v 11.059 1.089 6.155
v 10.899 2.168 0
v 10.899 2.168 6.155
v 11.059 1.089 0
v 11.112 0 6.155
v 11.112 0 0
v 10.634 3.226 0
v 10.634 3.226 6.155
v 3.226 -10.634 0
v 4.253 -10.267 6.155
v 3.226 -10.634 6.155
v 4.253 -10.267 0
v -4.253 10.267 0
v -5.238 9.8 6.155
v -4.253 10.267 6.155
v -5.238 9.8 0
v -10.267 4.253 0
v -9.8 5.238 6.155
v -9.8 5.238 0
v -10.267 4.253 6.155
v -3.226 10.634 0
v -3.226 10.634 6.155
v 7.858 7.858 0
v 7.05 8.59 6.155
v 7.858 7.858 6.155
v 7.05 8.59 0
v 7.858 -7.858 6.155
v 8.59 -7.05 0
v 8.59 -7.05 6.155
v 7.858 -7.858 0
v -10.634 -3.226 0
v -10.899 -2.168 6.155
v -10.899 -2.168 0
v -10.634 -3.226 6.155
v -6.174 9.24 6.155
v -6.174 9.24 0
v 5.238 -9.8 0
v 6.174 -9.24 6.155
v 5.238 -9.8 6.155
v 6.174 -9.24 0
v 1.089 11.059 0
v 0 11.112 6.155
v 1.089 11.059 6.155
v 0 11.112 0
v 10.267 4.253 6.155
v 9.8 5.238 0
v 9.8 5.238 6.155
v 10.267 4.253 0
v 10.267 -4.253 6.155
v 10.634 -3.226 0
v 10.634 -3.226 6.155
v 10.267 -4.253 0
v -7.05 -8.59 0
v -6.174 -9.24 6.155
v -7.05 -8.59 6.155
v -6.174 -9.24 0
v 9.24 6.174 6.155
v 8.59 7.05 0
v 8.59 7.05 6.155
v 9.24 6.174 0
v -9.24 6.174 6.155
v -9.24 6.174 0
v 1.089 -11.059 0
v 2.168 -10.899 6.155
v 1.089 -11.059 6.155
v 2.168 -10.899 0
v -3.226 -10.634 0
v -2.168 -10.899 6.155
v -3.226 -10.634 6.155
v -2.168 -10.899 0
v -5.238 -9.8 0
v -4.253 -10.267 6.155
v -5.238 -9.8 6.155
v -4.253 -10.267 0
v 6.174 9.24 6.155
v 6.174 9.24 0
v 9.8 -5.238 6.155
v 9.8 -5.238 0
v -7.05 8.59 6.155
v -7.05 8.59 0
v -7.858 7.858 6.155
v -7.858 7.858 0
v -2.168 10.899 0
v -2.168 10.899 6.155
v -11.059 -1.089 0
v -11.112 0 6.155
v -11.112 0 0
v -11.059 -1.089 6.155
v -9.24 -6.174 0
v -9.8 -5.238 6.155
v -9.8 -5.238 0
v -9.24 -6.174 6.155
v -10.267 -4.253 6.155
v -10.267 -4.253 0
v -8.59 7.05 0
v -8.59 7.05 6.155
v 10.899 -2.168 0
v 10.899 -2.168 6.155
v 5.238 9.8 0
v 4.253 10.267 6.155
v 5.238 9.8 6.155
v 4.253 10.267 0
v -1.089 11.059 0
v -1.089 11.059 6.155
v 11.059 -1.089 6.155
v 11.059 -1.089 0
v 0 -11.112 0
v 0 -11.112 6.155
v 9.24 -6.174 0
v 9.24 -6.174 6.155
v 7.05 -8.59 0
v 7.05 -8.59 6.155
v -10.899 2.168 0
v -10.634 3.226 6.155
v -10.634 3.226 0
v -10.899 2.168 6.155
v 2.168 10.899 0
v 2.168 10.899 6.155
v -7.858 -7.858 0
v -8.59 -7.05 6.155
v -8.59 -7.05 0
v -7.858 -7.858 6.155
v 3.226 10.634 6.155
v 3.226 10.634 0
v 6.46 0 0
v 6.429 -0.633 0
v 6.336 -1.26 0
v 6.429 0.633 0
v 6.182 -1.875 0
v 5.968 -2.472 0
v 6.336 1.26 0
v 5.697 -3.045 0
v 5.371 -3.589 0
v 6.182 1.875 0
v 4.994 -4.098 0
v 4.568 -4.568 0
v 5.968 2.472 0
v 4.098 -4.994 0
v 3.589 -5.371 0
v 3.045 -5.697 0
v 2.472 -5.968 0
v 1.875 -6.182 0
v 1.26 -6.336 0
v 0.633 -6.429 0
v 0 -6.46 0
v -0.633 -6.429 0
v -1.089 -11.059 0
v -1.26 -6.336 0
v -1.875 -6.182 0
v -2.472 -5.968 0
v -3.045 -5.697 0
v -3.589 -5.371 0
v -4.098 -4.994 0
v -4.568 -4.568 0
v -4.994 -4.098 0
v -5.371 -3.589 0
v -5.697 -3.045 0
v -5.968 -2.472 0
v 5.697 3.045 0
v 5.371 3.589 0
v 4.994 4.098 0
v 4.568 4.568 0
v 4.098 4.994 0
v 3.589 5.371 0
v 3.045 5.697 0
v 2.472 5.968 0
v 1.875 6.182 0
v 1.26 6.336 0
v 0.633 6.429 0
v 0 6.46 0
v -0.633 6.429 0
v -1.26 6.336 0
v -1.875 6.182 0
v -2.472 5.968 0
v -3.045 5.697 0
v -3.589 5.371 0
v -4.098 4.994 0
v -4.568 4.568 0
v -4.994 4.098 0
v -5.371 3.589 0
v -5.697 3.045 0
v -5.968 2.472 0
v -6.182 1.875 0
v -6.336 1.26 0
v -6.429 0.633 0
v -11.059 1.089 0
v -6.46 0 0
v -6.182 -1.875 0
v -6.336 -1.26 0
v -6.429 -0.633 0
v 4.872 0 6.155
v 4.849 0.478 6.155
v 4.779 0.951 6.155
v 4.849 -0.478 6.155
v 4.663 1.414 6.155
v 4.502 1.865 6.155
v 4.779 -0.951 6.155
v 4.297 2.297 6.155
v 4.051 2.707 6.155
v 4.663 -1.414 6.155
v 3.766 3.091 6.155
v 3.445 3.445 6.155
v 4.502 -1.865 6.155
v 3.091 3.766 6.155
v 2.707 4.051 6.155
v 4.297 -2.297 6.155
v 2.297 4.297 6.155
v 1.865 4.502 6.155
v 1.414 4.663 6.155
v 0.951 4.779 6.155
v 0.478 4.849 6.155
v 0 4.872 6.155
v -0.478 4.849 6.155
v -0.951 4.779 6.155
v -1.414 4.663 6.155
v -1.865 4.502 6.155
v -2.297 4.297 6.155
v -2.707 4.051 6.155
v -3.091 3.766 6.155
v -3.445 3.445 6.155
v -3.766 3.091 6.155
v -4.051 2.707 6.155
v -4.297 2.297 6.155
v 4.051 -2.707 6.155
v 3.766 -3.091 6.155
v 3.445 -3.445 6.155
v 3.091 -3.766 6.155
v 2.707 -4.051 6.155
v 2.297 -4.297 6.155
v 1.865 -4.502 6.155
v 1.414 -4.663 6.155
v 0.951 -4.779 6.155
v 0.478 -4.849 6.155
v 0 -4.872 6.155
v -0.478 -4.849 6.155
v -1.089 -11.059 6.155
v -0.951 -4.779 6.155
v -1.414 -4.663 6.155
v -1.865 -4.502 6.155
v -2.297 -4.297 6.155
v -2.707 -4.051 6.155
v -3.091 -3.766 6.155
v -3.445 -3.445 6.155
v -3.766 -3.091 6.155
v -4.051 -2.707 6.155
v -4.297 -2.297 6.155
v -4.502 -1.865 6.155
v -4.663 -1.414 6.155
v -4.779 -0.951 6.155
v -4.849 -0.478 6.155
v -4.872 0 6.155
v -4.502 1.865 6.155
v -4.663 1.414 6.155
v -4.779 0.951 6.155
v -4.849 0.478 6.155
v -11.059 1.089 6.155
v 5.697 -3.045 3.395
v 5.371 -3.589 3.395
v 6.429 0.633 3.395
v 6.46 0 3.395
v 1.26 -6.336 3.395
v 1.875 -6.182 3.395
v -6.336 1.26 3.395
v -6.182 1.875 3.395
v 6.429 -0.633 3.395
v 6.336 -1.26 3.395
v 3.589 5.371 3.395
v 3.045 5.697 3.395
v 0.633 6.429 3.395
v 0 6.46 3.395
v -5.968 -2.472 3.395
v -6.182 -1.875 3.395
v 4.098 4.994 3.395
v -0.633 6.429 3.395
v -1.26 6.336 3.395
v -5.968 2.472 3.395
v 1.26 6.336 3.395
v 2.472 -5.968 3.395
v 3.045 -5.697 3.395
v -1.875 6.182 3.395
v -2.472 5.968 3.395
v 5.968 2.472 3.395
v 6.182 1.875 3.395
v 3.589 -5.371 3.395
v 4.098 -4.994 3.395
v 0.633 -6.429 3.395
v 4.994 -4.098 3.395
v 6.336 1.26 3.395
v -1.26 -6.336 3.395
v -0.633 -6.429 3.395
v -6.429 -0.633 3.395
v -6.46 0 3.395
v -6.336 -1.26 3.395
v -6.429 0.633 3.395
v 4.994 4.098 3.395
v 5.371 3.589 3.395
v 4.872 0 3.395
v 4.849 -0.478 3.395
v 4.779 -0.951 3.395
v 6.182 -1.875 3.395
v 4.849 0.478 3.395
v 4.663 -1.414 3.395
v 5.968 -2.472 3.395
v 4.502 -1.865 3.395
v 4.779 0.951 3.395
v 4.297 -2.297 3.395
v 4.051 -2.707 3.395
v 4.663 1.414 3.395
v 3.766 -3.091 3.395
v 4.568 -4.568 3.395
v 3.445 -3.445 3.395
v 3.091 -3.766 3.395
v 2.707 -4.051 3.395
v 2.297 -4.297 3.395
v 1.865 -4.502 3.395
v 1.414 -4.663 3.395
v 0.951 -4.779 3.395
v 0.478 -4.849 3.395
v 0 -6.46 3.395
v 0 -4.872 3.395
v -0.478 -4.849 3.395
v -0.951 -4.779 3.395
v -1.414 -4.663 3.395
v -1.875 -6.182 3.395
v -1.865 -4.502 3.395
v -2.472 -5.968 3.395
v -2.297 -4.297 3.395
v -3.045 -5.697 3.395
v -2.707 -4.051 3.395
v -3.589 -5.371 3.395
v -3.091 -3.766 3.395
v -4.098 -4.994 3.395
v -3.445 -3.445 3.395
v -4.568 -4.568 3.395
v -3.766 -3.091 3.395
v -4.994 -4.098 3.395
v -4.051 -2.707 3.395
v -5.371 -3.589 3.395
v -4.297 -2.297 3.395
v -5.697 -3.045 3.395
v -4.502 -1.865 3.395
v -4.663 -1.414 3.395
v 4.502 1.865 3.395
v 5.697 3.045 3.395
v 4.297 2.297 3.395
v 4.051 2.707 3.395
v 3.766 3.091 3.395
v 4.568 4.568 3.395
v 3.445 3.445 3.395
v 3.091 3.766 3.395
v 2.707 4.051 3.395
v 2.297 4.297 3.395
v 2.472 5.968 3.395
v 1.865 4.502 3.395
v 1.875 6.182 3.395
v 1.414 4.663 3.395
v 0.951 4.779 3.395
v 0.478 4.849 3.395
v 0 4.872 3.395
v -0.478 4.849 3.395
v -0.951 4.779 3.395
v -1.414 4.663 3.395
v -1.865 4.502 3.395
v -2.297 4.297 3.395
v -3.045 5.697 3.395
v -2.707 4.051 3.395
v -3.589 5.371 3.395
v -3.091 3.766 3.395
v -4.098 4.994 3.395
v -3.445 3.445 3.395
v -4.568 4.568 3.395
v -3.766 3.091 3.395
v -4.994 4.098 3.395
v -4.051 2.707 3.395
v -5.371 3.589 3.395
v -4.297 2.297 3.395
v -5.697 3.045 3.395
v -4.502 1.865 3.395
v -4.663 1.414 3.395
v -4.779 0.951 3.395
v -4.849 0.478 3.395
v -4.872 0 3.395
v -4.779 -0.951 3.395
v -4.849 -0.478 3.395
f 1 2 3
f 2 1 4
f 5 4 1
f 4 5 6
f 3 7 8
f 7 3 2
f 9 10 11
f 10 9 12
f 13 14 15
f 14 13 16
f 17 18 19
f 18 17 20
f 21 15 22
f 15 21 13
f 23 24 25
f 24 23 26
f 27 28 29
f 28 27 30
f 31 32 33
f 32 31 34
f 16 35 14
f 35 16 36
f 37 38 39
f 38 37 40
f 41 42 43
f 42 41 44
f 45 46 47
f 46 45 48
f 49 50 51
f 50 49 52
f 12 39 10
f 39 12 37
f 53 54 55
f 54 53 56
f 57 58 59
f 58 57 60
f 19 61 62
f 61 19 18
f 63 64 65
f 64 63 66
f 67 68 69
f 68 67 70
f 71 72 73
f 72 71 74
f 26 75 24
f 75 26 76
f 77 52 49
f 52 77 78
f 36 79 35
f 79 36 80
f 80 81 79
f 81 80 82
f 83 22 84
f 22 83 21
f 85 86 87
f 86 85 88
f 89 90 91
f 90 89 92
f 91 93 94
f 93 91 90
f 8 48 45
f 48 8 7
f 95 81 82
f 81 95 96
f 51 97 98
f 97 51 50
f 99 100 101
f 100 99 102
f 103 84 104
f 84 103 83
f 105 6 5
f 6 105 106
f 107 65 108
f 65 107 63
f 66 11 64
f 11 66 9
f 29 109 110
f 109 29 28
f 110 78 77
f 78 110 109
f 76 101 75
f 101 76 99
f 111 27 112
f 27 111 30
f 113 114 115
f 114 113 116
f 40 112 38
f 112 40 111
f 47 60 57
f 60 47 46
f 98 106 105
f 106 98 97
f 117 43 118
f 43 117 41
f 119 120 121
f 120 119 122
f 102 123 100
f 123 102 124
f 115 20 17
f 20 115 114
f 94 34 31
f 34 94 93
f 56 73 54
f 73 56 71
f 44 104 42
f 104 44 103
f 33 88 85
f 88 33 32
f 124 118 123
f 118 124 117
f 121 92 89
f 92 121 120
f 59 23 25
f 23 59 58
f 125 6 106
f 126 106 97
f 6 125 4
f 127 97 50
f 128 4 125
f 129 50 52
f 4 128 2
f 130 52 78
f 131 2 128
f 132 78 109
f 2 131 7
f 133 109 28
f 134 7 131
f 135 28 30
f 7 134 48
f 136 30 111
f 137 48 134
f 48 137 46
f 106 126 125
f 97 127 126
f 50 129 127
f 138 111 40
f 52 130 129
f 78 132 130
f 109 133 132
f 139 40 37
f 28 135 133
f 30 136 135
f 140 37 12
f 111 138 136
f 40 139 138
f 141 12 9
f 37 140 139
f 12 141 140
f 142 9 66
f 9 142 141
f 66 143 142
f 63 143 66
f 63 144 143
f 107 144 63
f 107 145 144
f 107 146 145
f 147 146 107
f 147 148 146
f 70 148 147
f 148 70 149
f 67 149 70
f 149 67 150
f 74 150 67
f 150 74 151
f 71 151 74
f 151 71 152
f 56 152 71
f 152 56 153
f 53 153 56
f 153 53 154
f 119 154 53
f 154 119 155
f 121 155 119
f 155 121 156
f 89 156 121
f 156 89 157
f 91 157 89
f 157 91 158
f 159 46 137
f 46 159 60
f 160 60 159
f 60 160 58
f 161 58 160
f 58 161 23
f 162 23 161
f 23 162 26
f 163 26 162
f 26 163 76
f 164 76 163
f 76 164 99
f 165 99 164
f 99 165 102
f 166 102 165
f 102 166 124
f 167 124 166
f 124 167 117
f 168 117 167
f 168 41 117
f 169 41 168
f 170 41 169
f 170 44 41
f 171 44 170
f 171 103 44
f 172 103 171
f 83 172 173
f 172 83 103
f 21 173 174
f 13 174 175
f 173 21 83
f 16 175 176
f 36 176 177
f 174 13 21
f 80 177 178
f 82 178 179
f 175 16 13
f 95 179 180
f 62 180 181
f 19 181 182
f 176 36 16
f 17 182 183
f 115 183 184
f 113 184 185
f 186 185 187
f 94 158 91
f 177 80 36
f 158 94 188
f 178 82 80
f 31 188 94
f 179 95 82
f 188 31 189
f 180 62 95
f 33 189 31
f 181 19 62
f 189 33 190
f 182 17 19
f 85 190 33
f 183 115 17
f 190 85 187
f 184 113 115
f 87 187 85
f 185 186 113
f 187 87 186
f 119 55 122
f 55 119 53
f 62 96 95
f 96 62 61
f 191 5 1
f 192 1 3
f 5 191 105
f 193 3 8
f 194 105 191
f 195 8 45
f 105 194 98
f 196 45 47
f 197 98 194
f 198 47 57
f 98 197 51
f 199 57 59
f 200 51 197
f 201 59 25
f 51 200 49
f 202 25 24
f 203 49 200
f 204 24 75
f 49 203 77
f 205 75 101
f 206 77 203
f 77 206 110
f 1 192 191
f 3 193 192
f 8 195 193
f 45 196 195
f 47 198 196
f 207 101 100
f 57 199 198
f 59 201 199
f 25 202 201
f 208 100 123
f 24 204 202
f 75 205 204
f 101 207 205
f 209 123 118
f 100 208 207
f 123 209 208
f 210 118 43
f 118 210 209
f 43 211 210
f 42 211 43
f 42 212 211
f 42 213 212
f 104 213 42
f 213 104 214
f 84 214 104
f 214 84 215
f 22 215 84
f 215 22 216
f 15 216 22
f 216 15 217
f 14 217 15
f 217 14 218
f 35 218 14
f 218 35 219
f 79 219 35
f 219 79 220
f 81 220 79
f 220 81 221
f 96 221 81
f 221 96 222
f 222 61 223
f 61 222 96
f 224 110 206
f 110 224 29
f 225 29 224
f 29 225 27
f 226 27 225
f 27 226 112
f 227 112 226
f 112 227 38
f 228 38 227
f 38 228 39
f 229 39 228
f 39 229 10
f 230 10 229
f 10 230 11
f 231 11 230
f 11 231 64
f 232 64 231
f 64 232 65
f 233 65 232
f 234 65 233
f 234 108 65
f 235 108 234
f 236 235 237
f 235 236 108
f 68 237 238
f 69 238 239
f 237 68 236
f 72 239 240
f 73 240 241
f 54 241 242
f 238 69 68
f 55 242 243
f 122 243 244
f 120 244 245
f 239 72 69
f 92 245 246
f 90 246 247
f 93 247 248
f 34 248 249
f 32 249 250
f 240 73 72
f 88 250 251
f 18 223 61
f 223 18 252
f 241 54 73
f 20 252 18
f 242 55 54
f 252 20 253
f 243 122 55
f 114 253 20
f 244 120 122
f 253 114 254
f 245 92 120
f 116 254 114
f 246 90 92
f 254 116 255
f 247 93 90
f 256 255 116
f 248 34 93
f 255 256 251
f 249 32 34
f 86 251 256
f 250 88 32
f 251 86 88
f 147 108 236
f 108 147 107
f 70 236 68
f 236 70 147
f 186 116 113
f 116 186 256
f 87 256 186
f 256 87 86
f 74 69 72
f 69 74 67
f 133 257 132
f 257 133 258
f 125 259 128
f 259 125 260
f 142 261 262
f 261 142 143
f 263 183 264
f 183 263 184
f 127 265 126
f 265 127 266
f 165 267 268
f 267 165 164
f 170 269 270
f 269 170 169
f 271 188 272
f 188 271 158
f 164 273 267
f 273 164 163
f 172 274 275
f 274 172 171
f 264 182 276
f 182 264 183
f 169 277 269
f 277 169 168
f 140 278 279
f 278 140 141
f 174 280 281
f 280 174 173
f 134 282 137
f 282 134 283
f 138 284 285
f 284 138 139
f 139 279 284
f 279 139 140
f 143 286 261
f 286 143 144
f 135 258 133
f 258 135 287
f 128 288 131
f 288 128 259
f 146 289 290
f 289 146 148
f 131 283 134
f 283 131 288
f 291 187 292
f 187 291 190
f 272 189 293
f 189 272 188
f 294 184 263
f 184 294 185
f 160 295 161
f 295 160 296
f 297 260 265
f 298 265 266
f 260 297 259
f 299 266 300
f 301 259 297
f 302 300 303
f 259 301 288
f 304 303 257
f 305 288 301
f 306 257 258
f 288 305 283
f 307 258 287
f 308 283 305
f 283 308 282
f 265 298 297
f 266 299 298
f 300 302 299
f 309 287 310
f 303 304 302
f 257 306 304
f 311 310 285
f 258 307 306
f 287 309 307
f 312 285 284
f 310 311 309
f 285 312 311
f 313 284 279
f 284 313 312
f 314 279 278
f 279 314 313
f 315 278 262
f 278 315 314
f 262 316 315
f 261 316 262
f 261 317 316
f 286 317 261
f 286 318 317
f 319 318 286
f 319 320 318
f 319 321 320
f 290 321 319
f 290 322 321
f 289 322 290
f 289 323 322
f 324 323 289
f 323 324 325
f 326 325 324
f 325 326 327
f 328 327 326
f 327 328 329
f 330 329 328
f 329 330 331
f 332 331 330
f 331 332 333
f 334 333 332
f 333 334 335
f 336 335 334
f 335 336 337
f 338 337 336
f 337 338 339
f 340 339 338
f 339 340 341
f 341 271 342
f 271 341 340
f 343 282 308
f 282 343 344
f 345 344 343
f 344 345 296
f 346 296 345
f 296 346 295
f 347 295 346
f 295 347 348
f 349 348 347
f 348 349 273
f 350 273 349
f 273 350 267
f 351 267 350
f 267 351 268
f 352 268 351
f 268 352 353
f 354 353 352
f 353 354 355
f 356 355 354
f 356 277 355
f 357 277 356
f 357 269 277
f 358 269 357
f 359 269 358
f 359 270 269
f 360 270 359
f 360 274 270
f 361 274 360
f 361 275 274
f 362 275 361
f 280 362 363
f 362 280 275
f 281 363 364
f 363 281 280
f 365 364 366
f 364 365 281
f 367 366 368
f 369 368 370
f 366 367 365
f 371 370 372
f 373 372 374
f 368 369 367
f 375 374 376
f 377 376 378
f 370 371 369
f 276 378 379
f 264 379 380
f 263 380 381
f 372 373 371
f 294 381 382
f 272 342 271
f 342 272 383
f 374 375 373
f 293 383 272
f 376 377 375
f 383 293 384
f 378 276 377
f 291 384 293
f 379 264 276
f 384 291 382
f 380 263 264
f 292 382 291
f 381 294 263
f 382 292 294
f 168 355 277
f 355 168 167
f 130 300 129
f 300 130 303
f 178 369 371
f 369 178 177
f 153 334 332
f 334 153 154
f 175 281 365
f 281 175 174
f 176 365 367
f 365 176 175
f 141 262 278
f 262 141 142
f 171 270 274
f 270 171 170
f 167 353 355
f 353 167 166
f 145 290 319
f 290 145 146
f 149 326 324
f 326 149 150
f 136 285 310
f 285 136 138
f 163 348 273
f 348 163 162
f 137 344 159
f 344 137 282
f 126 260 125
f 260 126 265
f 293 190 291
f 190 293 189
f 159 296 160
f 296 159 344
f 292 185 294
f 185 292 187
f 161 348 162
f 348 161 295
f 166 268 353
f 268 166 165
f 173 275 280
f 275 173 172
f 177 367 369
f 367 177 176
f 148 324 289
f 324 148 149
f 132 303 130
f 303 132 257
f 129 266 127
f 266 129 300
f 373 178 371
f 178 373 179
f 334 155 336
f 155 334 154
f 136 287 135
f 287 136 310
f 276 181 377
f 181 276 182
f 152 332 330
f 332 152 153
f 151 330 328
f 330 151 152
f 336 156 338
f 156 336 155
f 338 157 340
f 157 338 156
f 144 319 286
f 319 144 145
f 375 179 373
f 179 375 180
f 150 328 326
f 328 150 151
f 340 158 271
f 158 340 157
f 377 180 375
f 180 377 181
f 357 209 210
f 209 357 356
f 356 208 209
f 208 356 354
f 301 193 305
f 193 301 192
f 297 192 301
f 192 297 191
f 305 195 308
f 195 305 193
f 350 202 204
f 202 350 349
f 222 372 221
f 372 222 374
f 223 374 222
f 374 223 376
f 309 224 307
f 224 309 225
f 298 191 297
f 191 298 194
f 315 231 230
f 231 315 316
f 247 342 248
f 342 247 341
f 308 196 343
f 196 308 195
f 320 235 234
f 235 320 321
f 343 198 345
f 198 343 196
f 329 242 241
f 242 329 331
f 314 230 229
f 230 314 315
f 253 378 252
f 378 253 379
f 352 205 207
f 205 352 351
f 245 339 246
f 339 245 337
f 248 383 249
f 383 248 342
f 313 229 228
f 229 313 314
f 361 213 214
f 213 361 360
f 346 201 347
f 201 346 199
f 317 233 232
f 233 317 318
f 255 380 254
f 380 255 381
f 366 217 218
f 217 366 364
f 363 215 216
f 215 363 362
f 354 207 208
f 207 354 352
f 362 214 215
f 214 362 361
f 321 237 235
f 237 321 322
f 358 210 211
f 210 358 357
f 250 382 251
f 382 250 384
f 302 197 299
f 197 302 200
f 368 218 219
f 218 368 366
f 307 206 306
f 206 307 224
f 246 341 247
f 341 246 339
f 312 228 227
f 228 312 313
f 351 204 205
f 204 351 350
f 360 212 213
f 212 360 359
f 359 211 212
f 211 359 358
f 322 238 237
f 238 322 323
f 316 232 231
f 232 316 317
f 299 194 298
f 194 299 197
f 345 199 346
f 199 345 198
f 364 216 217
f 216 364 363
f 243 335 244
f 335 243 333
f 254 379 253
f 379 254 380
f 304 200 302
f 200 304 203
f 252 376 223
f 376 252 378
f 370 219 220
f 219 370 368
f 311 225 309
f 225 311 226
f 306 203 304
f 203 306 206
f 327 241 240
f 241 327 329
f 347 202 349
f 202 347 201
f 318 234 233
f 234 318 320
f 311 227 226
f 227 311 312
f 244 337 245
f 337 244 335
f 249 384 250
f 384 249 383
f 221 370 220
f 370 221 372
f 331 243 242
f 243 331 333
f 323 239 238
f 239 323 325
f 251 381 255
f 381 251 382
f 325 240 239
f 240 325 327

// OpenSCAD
print_adjustment = 0.22;
mm_multiplier = 25.4;
magnet_holder_diameter = 7/8 * mm_multiplier;
big_magnet_diameter = 1/2 * mm_multiplier + print_adjustment;
big_magnet_thickness = 1/8 * mm_multiplier + print_adjustment;
small_magnet_diameter = 3/8 * mm_multiplier + print_adjustment;
pad_height = big_magnet_thickness + 1/10 * mm_multiplier + print_adjustment;


difference(){
    cylinder( r = magnet_holder_diameter/2, h = pad_height, $fn = 64);

    cylinder( r = big_magnet_diameter/2, h = big_magnet_thickness, $fn = 64);

    translate([0,0,big_magnet_thickness]){
        cylinder( r = small_magnet_diameter/2, h = big_magnet_thickness, $fn = 64);
    }
}
